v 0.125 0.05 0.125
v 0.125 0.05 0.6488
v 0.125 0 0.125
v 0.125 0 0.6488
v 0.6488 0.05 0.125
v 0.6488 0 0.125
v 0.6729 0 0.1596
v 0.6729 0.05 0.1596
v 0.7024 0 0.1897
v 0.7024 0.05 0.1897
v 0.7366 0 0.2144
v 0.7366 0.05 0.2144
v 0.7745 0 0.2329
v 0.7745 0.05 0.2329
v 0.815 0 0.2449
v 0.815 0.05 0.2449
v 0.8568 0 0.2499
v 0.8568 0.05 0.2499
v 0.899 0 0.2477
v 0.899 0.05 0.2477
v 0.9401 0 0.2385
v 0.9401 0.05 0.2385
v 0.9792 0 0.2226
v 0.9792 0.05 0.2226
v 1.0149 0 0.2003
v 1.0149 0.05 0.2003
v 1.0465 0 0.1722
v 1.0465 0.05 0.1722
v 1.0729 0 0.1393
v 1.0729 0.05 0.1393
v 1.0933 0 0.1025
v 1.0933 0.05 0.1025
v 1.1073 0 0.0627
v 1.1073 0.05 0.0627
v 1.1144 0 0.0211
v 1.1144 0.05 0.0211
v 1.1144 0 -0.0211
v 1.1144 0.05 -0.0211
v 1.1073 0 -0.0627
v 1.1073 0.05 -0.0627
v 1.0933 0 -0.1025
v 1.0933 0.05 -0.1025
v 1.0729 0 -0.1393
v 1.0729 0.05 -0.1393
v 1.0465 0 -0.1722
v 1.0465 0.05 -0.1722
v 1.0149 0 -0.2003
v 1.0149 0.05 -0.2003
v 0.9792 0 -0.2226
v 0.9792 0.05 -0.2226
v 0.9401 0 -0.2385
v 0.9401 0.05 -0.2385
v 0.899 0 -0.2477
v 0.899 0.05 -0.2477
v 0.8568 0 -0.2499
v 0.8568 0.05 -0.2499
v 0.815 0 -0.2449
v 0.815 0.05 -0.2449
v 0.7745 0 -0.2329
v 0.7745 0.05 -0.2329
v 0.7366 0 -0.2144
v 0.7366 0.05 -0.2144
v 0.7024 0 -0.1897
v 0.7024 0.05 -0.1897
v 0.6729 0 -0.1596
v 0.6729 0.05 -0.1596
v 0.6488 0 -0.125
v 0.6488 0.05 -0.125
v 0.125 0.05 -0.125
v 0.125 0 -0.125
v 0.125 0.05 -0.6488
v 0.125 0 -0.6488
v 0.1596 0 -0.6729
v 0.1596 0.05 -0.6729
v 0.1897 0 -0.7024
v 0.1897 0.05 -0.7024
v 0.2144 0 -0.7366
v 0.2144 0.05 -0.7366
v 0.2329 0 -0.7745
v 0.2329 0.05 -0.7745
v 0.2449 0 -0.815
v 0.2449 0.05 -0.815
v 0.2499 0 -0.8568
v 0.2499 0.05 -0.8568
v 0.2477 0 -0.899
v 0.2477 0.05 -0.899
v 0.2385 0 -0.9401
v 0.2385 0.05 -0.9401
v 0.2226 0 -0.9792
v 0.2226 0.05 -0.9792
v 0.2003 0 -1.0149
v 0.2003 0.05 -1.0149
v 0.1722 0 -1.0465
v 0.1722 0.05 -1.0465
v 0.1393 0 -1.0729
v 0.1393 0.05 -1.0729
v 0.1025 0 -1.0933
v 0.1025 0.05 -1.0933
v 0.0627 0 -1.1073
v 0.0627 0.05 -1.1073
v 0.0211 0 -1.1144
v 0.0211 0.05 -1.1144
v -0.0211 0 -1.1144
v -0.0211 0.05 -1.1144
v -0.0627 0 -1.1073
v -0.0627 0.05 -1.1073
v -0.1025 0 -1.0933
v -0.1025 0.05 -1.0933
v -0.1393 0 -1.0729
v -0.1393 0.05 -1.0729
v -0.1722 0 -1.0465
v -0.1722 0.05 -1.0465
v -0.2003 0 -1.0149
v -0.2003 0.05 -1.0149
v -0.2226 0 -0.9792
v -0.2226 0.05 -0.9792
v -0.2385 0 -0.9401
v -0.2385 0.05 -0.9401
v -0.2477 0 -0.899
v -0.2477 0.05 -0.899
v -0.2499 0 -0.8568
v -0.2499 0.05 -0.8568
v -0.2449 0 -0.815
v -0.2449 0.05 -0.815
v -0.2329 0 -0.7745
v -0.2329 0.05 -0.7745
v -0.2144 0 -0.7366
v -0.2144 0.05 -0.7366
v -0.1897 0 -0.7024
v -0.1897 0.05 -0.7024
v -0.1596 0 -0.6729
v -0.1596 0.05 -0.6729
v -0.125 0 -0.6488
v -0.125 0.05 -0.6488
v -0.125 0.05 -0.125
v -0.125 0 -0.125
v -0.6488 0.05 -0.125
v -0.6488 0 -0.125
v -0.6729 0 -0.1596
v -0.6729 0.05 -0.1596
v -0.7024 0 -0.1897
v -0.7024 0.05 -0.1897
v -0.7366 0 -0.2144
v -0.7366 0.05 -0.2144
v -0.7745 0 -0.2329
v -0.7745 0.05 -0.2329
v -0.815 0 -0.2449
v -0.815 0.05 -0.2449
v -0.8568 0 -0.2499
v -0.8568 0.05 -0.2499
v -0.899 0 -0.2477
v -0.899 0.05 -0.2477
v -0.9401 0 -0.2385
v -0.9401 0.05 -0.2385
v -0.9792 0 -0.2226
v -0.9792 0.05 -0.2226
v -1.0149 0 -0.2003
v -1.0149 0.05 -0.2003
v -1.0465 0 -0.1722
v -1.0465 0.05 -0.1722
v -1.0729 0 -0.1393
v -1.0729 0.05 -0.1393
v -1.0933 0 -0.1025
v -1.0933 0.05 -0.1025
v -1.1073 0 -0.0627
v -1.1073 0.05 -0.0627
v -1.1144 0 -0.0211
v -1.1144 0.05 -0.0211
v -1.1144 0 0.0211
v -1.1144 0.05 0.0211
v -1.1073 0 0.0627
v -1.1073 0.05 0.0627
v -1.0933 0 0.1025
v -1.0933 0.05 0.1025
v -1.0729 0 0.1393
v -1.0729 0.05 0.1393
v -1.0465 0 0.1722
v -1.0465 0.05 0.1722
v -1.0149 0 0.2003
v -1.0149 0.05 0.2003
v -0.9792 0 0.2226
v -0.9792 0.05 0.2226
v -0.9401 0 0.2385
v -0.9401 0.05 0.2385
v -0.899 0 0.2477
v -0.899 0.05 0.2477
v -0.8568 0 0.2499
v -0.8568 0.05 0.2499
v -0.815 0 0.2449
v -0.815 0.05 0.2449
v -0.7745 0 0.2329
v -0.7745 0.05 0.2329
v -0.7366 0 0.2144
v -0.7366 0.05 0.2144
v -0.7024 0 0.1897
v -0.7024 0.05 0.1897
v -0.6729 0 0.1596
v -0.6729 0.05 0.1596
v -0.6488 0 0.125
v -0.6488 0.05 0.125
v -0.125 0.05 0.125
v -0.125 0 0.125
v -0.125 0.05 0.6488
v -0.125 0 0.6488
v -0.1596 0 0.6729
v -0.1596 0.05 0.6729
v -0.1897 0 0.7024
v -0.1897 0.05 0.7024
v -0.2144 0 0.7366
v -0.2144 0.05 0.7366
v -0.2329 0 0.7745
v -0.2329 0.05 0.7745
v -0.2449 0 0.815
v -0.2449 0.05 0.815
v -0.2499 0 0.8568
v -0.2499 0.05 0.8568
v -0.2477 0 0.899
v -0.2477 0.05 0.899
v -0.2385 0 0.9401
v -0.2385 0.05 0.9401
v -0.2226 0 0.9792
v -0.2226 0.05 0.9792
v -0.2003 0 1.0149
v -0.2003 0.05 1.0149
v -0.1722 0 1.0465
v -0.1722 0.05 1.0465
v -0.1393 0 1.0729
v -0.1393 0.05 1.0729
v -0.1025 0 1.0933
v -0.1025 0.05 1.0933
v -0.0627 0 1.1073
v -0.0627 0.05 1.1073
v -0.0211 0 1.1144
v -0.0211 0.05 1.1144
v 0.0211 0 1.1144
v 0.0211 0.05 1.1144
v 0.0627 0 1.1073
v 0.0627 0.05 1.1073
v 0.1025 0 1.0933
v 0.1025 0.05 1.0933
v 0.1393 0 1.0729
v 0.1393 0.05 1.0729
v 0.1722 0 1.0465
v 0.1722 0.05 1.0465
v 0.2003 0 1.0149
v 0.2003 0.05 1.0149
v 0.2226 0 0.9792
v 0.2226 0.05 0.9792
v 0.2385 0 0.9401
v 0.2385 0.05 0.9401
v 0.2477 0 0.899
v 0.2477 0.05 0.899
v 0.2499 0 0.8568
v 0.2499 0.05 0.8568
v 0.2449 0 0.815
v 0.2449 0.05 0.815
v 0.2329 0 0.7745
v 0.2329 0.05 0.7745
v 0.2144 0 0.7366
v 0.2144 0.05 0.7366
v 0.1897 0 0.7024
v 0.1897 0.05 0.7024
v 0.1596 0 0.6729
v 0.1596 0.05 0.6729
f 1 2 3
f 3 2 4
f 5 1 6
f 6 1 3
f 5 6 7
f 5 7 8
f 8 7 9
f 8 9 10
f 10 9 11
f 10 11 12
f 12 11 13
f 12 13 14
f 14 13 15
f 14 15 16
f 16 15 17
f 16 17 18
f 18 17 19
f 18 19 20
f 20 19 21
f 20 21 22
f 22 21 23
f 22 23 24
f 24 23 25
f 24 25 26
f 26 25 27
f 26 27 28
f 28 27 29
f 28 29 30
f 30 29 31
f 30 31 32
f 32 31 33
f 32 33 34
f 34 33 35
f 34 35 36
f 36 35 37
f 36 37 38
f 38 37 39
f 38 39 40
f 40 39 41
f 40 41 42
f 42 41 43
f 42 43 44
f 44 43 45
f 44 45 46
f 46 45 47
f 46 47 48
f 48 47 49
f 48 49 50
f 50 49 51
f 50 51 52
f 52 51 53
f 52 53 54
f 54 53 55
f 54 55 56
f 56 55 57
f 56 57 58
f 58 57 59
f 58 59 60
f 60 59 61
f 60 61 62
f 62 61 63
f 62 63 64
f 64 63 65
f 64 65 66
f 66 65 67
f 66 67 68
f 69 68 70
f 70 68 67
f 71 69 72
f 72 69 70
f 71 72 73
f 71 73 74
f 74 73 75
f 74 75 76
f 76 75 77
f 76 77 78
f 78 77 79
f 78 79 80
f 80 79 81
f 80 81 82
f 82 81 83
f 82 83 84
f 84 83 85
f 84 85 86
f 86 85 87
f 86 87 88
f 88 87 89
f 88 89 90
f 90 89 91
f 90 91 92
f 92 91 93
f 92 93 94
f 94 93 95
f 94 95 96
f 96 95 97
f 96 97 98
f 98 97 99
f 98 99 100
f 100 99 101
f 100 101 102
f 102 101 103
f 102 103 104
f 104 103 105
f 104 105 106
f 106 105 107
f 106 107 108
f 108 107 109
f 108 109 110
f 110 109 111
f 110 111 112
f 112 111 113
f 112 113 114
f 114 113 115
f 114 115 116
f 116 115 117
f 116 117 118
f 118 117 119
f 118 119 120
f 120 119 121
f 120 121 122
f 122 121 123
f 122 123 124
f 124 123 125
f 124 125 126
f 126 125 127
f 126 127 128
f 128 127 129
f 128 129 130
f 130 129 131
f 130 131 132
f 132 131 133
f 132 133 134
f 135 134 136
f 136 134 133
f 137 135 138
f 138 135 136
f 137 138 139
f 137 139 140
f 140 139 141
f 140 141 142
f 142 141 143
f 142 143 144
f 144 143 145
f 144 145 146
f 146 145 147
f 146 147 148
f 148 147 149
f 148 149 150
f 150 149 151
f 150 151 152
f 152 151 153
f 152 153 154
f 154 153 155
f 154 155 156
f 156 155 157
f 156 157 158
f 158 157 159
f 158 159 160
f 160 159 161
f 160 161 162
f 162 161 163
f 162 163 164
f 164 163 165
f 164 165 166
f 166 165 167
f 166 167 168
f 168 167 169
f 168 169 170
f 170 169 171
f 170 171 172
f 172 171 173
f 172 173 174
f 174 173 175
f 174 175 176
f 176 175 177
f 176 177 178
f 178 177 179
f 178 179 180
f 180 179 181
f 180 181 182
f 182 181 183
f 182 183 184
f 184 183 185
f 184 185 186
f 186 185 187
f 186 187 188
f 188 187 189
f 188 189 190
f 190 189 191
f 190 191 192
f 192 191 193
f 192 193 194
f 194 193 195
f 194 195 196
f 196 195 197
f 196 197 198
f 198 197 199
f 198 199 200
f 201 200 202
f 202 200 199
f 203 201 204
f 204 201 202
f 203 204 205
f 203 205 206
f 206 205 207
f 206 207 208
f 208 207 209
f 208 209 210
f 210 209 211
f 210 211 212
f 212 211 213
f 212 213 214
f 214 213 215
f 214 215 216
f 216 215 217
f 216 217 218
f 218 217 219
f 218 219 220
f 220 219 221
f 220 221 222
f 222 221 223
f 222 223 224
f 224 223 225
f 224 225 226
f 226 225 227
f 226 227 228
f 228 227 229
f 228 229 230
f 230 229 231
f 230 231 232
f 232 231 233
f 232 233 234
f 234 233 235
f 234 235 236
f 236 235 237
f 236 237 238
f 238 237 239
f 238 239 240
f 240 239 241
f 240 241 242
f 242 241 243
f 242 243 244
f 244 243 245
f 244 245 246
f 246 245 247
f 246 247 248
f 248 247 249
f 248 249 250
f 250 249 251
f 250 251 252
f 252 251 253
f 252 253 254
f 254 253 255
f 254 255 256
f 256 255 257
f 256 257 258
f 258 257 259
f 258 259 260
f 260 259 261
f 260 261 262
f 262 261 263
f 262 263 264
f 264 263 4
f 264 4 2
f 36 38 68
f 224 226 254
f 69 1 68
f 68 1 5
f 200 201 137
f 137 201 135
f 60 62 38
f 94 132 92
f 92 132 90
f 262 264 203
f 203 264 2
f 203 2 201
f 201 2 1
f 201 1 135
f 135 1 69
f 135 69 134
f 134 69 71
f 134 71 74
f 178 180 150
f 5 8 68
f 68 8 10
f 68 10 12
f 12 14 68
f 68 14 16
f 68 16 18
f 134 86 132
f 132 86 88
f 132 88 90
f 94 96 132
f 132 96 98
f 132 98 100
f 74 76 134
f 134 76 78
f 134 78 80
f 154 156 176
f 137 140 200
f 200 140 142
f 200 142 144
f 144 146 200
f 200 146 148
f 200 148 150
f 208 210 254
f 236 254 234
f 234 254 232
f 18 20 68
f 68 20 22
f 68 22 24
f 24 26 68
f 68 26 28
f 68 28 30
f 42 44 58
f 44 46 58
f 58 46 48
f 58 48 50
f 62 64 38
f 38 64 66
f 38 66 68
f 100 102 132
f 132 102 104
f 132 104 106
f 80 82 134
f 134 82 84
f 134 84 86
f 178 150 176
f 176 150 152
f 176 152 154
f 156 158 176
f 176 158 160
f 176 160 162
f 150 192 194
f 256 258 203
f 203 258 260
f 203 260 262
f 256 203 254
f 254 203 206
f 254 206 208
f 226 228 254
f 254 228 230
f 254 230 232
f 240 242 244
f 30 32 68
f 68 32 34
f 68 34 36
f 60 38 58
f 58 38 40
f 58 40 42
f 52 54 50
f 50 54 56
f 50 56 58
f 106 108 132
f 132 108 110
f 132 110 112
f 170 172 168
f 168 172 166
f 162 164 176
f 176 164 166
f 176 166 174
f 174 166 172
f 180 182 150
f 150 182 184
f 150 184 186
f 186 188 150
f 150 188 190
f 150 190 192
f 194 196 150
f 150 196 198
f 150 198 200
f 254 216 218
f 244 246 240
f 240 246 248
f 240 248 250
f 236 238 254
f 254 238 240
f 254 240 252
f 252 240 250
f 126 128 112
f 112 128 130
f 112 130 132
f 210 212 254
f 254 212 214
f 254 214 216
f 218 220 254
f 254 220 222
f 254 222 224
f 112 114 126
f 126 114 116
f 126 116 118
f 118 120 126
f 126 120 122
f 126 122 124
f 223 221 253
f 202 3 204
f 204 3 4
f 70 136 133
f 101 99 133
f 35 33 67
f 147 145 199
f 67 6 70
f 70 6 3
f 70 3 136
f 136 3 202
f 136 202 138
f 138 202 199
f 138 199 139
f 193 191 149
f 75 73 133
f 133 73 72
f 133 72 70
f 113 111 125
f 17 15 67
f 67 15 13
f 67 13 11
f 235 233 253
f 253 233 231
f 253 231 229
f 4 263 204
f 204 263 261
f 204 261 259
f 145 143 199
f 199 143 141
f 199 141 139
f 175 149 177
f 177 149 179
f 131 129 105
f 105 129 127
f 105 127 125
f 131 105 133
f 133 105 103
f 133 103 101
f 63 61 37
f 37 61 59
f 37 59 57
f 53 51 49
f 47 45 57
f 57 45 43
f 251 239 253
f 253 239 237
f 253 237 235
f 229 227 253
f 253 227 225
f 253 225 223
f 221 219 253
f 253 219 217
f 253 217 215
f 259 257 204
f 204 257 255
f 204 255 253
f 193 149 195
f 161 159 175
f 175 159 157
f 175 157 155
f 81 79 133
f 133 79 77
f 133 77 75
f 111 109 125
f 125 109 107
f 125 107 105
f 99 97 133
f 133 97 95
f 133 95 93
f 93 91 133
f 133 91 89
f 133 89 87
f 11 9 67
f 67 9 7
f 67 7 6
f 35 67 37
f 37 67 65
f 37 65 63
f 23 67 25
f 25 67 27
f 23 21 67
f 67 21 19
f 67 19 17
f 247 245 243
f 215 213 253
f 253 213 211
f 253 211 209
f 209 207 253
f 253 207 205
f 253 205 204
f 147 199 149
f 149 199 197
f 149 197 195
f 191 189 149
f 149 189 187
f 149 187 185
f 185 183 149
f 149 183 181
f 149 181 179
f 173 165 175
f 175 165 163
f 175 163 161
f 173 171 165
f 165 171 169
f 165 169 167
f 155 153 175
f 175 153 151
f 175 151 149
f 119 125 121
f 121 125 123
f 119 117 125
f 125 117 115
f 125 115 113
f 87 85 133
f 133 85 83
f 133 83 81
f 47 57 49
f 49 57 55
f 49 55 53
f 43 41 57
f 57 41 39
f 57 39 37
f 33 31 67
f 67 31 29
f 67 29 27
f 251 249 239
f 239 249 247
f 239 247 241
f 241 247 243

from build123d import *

# Parameters (mm, degrees)
BOSS_EXTRUDE1_DEPTH = 0.05


with BuildPart() as part:
    # Sketch1 → Boss-Extrude1 (new body)
    with BuildSketch(Plane(origin=(0, 0, 0), x_dir=(1, 0, 0), z_dir=(0, 1, 0))):
        with BuildLine():
            Line((-0.125, 0.125), (-0.125, 0.6487705))
            ThreePointArc((-0.125, 0.6487705), (0, 1.115276851), (0.125, 0.6487705))
            Line((0.125, 0.6487705), (0.125, 0.125))
            Line((0.125, 0.125), (0.6487705, 0.125))
            ThreePointArc((0.6487705, 0.125), (1.115276851, 0), (0.6487705, -0.125))
            Line((0.6487705, -0.125), (0.125, -0.125))
            Line((0.125, -0.125), (0.125, -0.6487705))
            ThreePointArc((0.125, -0.6487705), (0, -1.115276851), (-0.125, -0.6487705))
            Line((-0.125, -0.6487705), (-0.125, -0.125))
            Line((-0.125, -0.125), (-0.6487705, -0.125))
            ThreePointArc((-0.6487705, -0.125), (-1.115276851, 0), (-0.6487705, 0.125))
            Line((-0.6487705, 0.125), (-0.125, 0.125))
        make_face()
    extrude(amount=BOSS_EXTRUDE1_DEPTH)


solid = part.part
